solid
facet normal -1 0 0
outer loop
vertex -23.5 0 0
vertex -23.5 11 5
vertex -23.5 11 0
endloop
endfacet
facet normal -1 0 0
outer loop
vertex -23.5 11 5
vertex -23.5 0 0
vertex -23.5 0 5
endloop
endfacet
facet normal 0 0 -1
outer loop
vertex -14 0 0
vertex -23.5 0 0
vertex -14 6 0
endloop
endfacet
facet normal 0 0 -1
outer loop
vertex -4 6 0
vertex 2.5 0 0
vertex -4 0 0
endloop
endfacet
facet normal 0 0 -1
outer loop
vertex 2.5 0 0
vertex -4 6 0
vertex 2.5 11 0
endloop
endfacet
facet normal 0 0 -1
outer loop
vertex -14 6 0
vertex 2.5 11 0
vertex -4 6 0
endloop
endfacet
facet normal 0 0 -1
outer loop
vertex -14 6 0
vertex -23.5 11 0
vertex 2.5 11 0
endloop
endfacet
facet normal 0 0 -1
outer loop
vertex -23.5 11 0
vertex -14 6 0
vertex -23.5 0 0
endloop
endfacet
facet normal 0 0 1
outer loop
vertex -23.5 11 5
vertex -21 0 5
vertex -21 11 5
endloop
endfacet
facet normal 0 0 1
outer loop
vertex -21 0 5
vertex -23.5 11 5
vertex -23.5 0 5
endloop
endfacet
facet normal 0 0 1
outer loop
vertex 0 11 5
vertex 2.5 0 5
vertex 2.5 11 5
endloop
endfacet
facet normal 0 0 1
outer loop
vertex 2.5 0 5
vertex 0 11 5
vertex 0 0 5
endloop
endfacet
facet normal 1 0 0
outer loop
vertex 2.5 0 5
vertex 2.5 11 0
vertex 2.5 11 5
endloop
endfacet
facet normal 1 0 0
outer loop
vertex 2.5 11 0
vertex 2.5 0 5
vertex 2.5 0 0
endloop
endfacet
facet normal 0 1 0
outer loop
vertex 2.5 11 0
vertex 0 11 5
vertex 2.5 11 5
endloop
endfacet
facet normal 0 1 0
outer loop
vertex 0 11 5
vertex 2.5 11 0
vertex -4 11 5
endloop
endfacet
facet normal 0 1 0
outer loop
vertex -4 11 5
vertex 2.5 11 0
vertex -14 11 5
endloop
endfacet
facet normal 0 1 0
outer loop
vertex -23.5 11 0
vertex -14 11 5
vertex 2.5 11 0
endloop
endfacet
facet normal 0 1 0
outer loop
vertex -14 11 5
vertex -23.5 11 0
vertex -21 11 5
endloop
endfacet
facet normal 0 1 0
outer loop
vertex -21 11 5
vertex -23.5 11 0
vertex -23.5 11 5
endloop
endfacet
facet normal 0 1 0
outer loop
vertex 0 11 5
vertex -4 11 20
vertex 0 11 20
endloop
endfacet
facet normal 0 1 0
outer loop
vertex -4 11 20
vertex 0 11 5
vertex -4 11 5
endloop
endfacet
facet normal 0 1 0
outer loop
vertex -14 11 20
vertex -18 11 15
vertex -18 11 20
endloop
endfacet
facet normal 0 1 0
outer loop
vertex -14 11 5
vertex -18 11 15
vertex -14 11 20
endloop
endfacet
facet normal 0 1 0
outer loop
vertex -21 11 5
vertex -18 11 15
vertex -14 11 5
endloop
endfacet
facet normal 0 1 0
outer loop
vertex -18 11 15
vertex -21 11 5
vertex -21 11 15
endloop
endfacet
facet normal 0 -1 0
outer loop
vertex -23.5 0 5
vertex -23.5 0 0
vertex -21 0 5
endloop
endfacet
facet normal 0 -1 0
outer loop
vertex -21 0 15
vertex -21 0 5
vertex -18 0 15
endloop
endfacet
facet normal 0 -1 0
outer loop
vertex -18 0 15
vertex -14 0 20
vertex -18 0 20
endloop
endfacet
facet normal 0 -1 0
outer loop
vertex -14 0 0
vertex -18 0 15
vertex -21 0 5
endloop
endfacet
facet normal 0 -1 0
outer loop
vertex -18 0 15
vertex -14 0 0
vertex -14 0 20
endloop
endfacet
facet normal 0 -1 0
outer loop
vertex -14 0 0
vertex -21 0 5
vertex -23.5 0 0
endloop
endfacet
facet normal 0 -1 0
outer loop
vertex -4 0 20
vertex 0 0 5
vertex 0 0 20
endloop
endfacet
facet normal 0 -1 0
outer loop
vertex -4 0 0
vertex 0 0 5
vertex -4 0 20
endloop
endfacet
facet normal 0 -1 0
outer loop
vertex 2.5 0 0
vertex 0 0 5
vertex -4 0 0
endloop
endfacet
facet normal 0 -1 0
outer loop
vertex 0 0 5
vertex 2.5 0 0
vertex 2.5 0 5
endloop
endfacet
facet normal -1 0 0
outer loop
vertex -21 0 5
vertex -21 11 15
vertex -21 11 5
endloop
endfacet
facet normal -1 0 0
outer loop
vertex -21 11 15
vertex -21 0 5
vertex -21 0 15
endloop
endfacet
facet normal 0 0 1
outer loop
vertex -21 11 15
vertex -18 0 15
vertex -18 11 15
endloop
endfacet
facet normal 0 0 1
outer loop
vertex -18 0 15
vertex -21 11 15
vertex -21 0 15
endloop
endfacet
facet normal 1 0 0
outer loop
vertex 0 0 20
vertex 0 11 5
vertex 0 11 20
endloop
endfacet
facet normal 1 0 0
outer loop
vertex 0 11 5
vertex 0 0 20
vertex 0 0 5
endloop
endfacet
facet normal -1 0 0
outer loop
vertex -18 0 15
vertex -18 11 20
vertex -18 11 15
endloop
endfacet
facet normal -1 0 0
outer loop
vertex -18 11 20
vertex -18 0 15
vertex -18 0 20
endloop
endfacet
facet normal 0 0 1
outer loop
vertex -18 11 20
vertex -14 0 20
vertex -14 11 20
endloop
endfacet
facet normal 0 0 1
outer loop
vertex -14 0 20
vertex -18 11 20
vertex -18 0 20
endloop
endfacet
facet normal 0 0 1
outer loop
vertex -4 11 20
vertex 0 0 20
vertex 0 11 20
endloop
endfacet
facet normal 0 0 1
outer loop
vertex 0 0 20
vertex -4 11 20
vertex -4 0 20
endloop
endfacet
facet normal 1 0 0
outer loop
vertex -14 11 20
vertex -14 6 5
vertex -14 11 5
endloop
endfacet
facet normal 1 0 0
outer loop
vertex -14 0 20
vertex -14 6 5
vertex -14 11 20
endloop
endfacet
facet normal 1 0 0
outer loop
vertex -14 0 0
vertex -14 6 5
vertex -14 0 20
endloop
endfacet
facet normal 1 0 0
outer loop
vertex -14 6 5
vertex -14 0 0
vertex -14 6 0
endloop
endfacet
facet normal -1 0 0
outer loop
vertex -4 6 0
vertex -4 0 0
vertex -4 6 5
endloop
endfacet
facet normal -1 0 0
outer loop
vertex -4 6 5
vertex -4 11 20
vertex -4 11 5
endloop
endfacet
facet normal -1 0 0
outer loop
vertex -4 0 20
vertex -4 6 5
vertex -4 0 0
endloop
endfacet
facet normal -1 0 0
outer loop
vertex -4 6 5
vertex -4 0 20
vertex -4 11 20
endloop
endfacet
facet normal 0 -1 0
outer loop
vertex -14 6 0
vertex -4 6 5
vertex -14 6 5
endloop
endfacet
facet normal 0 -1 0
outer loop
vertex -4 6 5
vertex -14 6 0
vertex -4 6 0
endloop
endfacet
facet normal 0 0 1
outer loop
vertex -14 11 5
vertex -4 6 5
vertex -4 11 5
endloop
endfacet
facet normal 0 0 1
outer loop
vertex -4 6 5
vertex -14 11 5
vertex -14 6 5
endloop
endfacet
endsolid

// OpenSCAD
// CC BY-SA 4.0, FHNW (University of Applied Sciences and Arts Northwestern Switzerland)

translate([0, 0, 20]) rotate([0, 180, 0]) 
difference() {
    union() {
        translate([-2.5, 0, 15]) cube([21 + 2 * 2.5, 11, 5]);
        translate([0, 0, 5]) cube([21, 11, 10]);
        cube([18, 11, 5]);
    }
    translate([(18 - 10) / 2, 0, 0]) cube([10, 6, 20]);
    translate([(18 - 10) / 2, 5, 0]) cube([10, 6, 15]);
}
